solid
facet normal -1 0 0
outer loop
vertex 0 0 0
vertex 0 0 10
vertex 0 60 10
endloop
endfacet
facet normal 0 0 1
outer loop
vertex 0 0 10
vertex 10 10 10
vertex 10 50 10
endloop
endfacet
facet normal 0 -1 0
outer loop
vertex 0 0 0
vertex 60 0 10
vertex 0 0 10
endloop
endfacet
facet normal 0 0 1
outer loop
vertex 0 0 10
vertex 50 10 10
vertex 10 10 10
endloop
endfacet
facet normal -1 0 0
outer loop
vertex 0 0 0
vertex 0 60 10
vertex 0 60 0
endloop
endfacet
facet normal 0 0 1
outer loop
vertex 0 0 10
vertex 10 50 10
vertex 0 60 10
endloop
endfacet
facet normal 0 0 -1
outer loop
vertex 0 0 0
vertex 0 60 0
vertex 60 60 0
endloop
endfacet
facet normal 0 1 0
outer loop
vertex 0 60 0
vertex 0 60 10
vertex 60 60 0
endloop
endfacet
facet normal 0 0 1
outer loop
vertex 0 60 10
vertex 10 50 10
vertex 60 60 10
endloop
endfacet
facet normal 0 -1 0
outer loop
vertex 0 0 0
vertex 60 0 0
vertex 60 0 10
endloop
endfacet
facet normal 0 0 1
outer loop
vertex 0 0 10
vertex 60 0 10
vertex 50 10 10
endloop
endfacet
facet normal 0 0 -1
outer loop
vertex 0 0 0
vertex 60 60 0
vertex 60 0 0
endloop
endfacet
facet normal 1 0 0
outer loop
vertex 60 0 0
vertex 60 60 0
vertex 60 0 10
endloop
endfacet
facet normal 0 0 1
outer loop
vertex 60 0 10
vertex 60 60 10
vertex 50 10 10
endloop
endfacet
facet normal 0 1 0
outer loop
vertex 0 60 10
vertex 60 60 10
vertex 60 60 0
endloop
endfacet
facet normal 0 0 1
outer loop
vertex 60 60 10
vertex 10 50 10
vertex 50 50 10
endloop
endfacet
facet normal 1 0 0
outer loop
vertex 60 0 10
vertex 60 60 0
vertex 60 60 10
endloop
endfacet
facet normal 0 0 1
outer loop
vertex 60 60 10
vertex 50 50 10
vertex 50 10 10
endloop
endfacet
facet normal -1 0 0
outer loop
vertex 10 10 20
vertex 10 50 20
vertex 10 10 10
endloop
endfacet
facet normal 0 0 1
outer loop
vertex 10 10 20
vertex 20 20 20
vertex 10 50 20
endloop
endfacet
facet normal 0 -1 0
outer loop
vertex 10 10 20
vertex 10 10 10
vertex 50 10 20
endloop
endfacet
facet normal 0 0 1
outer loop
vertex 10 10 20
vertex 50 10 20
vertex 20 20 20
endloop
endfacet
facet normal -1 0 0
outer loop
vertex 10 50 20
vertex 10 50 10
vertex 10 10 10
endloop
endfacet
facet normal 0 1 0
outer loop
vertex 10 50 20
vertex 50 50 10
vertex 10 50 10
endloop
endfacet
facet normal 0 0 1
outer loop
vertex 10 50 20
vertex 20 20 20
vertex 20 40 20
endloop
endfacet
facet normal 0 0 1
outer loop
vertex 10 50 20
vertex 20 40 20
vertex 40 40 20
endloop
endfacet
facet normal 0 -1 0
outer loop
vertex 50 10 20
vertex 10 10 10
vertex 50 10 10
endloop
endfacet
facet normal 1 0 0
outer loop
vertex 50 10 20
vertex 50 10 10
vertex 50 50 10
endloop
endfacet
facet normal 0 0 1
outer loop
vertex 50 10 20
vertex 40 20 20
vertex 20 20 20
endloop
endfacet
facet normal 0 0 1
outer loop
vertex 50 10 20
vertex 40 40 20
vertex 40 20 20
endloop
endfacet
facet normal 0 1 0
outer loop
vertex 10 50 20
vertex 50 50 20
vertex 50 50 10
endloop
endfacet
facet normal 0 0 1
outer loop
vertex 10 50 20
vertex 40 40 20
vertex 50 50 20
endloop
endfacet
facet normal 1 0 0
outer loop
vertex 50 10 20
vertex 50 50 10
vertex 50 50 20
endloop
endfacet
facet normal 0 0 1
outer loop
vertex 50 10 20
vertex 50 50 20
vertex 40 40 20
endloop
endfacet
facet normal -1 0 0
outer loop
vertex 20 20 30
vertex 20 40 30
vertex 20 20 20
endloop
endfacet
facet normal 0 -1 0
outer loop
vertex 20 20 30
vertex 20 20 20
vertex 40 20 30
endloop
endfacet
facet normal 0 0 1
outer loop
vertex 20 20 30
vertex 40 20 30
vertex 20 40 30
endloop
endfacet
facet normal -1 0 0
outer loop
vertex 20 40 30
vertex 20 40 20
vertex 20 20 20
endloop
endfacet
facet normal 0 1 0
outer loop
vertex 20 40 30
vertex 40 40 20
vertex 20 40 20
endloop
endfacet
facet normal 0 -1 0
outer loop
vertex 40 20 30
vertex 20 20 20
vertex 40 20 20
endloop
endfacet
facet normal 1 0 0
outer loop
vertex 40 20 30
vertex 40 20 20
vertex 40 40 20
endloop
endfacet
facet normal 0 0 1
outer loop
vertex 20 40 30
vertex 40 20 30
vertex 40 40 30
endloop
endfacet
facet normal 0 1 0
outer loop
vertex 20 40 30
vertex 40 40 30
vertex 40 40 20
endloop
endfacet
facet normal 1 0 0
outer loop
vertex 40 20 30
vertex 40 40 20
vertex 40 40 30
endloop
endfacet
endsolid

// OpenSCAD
cube([60, 60, 10]);

translate([10, 10, 10])
    cube([40, 40, 10]);

translate([20, 20, 20])
    cube([20, 20, 10]);
